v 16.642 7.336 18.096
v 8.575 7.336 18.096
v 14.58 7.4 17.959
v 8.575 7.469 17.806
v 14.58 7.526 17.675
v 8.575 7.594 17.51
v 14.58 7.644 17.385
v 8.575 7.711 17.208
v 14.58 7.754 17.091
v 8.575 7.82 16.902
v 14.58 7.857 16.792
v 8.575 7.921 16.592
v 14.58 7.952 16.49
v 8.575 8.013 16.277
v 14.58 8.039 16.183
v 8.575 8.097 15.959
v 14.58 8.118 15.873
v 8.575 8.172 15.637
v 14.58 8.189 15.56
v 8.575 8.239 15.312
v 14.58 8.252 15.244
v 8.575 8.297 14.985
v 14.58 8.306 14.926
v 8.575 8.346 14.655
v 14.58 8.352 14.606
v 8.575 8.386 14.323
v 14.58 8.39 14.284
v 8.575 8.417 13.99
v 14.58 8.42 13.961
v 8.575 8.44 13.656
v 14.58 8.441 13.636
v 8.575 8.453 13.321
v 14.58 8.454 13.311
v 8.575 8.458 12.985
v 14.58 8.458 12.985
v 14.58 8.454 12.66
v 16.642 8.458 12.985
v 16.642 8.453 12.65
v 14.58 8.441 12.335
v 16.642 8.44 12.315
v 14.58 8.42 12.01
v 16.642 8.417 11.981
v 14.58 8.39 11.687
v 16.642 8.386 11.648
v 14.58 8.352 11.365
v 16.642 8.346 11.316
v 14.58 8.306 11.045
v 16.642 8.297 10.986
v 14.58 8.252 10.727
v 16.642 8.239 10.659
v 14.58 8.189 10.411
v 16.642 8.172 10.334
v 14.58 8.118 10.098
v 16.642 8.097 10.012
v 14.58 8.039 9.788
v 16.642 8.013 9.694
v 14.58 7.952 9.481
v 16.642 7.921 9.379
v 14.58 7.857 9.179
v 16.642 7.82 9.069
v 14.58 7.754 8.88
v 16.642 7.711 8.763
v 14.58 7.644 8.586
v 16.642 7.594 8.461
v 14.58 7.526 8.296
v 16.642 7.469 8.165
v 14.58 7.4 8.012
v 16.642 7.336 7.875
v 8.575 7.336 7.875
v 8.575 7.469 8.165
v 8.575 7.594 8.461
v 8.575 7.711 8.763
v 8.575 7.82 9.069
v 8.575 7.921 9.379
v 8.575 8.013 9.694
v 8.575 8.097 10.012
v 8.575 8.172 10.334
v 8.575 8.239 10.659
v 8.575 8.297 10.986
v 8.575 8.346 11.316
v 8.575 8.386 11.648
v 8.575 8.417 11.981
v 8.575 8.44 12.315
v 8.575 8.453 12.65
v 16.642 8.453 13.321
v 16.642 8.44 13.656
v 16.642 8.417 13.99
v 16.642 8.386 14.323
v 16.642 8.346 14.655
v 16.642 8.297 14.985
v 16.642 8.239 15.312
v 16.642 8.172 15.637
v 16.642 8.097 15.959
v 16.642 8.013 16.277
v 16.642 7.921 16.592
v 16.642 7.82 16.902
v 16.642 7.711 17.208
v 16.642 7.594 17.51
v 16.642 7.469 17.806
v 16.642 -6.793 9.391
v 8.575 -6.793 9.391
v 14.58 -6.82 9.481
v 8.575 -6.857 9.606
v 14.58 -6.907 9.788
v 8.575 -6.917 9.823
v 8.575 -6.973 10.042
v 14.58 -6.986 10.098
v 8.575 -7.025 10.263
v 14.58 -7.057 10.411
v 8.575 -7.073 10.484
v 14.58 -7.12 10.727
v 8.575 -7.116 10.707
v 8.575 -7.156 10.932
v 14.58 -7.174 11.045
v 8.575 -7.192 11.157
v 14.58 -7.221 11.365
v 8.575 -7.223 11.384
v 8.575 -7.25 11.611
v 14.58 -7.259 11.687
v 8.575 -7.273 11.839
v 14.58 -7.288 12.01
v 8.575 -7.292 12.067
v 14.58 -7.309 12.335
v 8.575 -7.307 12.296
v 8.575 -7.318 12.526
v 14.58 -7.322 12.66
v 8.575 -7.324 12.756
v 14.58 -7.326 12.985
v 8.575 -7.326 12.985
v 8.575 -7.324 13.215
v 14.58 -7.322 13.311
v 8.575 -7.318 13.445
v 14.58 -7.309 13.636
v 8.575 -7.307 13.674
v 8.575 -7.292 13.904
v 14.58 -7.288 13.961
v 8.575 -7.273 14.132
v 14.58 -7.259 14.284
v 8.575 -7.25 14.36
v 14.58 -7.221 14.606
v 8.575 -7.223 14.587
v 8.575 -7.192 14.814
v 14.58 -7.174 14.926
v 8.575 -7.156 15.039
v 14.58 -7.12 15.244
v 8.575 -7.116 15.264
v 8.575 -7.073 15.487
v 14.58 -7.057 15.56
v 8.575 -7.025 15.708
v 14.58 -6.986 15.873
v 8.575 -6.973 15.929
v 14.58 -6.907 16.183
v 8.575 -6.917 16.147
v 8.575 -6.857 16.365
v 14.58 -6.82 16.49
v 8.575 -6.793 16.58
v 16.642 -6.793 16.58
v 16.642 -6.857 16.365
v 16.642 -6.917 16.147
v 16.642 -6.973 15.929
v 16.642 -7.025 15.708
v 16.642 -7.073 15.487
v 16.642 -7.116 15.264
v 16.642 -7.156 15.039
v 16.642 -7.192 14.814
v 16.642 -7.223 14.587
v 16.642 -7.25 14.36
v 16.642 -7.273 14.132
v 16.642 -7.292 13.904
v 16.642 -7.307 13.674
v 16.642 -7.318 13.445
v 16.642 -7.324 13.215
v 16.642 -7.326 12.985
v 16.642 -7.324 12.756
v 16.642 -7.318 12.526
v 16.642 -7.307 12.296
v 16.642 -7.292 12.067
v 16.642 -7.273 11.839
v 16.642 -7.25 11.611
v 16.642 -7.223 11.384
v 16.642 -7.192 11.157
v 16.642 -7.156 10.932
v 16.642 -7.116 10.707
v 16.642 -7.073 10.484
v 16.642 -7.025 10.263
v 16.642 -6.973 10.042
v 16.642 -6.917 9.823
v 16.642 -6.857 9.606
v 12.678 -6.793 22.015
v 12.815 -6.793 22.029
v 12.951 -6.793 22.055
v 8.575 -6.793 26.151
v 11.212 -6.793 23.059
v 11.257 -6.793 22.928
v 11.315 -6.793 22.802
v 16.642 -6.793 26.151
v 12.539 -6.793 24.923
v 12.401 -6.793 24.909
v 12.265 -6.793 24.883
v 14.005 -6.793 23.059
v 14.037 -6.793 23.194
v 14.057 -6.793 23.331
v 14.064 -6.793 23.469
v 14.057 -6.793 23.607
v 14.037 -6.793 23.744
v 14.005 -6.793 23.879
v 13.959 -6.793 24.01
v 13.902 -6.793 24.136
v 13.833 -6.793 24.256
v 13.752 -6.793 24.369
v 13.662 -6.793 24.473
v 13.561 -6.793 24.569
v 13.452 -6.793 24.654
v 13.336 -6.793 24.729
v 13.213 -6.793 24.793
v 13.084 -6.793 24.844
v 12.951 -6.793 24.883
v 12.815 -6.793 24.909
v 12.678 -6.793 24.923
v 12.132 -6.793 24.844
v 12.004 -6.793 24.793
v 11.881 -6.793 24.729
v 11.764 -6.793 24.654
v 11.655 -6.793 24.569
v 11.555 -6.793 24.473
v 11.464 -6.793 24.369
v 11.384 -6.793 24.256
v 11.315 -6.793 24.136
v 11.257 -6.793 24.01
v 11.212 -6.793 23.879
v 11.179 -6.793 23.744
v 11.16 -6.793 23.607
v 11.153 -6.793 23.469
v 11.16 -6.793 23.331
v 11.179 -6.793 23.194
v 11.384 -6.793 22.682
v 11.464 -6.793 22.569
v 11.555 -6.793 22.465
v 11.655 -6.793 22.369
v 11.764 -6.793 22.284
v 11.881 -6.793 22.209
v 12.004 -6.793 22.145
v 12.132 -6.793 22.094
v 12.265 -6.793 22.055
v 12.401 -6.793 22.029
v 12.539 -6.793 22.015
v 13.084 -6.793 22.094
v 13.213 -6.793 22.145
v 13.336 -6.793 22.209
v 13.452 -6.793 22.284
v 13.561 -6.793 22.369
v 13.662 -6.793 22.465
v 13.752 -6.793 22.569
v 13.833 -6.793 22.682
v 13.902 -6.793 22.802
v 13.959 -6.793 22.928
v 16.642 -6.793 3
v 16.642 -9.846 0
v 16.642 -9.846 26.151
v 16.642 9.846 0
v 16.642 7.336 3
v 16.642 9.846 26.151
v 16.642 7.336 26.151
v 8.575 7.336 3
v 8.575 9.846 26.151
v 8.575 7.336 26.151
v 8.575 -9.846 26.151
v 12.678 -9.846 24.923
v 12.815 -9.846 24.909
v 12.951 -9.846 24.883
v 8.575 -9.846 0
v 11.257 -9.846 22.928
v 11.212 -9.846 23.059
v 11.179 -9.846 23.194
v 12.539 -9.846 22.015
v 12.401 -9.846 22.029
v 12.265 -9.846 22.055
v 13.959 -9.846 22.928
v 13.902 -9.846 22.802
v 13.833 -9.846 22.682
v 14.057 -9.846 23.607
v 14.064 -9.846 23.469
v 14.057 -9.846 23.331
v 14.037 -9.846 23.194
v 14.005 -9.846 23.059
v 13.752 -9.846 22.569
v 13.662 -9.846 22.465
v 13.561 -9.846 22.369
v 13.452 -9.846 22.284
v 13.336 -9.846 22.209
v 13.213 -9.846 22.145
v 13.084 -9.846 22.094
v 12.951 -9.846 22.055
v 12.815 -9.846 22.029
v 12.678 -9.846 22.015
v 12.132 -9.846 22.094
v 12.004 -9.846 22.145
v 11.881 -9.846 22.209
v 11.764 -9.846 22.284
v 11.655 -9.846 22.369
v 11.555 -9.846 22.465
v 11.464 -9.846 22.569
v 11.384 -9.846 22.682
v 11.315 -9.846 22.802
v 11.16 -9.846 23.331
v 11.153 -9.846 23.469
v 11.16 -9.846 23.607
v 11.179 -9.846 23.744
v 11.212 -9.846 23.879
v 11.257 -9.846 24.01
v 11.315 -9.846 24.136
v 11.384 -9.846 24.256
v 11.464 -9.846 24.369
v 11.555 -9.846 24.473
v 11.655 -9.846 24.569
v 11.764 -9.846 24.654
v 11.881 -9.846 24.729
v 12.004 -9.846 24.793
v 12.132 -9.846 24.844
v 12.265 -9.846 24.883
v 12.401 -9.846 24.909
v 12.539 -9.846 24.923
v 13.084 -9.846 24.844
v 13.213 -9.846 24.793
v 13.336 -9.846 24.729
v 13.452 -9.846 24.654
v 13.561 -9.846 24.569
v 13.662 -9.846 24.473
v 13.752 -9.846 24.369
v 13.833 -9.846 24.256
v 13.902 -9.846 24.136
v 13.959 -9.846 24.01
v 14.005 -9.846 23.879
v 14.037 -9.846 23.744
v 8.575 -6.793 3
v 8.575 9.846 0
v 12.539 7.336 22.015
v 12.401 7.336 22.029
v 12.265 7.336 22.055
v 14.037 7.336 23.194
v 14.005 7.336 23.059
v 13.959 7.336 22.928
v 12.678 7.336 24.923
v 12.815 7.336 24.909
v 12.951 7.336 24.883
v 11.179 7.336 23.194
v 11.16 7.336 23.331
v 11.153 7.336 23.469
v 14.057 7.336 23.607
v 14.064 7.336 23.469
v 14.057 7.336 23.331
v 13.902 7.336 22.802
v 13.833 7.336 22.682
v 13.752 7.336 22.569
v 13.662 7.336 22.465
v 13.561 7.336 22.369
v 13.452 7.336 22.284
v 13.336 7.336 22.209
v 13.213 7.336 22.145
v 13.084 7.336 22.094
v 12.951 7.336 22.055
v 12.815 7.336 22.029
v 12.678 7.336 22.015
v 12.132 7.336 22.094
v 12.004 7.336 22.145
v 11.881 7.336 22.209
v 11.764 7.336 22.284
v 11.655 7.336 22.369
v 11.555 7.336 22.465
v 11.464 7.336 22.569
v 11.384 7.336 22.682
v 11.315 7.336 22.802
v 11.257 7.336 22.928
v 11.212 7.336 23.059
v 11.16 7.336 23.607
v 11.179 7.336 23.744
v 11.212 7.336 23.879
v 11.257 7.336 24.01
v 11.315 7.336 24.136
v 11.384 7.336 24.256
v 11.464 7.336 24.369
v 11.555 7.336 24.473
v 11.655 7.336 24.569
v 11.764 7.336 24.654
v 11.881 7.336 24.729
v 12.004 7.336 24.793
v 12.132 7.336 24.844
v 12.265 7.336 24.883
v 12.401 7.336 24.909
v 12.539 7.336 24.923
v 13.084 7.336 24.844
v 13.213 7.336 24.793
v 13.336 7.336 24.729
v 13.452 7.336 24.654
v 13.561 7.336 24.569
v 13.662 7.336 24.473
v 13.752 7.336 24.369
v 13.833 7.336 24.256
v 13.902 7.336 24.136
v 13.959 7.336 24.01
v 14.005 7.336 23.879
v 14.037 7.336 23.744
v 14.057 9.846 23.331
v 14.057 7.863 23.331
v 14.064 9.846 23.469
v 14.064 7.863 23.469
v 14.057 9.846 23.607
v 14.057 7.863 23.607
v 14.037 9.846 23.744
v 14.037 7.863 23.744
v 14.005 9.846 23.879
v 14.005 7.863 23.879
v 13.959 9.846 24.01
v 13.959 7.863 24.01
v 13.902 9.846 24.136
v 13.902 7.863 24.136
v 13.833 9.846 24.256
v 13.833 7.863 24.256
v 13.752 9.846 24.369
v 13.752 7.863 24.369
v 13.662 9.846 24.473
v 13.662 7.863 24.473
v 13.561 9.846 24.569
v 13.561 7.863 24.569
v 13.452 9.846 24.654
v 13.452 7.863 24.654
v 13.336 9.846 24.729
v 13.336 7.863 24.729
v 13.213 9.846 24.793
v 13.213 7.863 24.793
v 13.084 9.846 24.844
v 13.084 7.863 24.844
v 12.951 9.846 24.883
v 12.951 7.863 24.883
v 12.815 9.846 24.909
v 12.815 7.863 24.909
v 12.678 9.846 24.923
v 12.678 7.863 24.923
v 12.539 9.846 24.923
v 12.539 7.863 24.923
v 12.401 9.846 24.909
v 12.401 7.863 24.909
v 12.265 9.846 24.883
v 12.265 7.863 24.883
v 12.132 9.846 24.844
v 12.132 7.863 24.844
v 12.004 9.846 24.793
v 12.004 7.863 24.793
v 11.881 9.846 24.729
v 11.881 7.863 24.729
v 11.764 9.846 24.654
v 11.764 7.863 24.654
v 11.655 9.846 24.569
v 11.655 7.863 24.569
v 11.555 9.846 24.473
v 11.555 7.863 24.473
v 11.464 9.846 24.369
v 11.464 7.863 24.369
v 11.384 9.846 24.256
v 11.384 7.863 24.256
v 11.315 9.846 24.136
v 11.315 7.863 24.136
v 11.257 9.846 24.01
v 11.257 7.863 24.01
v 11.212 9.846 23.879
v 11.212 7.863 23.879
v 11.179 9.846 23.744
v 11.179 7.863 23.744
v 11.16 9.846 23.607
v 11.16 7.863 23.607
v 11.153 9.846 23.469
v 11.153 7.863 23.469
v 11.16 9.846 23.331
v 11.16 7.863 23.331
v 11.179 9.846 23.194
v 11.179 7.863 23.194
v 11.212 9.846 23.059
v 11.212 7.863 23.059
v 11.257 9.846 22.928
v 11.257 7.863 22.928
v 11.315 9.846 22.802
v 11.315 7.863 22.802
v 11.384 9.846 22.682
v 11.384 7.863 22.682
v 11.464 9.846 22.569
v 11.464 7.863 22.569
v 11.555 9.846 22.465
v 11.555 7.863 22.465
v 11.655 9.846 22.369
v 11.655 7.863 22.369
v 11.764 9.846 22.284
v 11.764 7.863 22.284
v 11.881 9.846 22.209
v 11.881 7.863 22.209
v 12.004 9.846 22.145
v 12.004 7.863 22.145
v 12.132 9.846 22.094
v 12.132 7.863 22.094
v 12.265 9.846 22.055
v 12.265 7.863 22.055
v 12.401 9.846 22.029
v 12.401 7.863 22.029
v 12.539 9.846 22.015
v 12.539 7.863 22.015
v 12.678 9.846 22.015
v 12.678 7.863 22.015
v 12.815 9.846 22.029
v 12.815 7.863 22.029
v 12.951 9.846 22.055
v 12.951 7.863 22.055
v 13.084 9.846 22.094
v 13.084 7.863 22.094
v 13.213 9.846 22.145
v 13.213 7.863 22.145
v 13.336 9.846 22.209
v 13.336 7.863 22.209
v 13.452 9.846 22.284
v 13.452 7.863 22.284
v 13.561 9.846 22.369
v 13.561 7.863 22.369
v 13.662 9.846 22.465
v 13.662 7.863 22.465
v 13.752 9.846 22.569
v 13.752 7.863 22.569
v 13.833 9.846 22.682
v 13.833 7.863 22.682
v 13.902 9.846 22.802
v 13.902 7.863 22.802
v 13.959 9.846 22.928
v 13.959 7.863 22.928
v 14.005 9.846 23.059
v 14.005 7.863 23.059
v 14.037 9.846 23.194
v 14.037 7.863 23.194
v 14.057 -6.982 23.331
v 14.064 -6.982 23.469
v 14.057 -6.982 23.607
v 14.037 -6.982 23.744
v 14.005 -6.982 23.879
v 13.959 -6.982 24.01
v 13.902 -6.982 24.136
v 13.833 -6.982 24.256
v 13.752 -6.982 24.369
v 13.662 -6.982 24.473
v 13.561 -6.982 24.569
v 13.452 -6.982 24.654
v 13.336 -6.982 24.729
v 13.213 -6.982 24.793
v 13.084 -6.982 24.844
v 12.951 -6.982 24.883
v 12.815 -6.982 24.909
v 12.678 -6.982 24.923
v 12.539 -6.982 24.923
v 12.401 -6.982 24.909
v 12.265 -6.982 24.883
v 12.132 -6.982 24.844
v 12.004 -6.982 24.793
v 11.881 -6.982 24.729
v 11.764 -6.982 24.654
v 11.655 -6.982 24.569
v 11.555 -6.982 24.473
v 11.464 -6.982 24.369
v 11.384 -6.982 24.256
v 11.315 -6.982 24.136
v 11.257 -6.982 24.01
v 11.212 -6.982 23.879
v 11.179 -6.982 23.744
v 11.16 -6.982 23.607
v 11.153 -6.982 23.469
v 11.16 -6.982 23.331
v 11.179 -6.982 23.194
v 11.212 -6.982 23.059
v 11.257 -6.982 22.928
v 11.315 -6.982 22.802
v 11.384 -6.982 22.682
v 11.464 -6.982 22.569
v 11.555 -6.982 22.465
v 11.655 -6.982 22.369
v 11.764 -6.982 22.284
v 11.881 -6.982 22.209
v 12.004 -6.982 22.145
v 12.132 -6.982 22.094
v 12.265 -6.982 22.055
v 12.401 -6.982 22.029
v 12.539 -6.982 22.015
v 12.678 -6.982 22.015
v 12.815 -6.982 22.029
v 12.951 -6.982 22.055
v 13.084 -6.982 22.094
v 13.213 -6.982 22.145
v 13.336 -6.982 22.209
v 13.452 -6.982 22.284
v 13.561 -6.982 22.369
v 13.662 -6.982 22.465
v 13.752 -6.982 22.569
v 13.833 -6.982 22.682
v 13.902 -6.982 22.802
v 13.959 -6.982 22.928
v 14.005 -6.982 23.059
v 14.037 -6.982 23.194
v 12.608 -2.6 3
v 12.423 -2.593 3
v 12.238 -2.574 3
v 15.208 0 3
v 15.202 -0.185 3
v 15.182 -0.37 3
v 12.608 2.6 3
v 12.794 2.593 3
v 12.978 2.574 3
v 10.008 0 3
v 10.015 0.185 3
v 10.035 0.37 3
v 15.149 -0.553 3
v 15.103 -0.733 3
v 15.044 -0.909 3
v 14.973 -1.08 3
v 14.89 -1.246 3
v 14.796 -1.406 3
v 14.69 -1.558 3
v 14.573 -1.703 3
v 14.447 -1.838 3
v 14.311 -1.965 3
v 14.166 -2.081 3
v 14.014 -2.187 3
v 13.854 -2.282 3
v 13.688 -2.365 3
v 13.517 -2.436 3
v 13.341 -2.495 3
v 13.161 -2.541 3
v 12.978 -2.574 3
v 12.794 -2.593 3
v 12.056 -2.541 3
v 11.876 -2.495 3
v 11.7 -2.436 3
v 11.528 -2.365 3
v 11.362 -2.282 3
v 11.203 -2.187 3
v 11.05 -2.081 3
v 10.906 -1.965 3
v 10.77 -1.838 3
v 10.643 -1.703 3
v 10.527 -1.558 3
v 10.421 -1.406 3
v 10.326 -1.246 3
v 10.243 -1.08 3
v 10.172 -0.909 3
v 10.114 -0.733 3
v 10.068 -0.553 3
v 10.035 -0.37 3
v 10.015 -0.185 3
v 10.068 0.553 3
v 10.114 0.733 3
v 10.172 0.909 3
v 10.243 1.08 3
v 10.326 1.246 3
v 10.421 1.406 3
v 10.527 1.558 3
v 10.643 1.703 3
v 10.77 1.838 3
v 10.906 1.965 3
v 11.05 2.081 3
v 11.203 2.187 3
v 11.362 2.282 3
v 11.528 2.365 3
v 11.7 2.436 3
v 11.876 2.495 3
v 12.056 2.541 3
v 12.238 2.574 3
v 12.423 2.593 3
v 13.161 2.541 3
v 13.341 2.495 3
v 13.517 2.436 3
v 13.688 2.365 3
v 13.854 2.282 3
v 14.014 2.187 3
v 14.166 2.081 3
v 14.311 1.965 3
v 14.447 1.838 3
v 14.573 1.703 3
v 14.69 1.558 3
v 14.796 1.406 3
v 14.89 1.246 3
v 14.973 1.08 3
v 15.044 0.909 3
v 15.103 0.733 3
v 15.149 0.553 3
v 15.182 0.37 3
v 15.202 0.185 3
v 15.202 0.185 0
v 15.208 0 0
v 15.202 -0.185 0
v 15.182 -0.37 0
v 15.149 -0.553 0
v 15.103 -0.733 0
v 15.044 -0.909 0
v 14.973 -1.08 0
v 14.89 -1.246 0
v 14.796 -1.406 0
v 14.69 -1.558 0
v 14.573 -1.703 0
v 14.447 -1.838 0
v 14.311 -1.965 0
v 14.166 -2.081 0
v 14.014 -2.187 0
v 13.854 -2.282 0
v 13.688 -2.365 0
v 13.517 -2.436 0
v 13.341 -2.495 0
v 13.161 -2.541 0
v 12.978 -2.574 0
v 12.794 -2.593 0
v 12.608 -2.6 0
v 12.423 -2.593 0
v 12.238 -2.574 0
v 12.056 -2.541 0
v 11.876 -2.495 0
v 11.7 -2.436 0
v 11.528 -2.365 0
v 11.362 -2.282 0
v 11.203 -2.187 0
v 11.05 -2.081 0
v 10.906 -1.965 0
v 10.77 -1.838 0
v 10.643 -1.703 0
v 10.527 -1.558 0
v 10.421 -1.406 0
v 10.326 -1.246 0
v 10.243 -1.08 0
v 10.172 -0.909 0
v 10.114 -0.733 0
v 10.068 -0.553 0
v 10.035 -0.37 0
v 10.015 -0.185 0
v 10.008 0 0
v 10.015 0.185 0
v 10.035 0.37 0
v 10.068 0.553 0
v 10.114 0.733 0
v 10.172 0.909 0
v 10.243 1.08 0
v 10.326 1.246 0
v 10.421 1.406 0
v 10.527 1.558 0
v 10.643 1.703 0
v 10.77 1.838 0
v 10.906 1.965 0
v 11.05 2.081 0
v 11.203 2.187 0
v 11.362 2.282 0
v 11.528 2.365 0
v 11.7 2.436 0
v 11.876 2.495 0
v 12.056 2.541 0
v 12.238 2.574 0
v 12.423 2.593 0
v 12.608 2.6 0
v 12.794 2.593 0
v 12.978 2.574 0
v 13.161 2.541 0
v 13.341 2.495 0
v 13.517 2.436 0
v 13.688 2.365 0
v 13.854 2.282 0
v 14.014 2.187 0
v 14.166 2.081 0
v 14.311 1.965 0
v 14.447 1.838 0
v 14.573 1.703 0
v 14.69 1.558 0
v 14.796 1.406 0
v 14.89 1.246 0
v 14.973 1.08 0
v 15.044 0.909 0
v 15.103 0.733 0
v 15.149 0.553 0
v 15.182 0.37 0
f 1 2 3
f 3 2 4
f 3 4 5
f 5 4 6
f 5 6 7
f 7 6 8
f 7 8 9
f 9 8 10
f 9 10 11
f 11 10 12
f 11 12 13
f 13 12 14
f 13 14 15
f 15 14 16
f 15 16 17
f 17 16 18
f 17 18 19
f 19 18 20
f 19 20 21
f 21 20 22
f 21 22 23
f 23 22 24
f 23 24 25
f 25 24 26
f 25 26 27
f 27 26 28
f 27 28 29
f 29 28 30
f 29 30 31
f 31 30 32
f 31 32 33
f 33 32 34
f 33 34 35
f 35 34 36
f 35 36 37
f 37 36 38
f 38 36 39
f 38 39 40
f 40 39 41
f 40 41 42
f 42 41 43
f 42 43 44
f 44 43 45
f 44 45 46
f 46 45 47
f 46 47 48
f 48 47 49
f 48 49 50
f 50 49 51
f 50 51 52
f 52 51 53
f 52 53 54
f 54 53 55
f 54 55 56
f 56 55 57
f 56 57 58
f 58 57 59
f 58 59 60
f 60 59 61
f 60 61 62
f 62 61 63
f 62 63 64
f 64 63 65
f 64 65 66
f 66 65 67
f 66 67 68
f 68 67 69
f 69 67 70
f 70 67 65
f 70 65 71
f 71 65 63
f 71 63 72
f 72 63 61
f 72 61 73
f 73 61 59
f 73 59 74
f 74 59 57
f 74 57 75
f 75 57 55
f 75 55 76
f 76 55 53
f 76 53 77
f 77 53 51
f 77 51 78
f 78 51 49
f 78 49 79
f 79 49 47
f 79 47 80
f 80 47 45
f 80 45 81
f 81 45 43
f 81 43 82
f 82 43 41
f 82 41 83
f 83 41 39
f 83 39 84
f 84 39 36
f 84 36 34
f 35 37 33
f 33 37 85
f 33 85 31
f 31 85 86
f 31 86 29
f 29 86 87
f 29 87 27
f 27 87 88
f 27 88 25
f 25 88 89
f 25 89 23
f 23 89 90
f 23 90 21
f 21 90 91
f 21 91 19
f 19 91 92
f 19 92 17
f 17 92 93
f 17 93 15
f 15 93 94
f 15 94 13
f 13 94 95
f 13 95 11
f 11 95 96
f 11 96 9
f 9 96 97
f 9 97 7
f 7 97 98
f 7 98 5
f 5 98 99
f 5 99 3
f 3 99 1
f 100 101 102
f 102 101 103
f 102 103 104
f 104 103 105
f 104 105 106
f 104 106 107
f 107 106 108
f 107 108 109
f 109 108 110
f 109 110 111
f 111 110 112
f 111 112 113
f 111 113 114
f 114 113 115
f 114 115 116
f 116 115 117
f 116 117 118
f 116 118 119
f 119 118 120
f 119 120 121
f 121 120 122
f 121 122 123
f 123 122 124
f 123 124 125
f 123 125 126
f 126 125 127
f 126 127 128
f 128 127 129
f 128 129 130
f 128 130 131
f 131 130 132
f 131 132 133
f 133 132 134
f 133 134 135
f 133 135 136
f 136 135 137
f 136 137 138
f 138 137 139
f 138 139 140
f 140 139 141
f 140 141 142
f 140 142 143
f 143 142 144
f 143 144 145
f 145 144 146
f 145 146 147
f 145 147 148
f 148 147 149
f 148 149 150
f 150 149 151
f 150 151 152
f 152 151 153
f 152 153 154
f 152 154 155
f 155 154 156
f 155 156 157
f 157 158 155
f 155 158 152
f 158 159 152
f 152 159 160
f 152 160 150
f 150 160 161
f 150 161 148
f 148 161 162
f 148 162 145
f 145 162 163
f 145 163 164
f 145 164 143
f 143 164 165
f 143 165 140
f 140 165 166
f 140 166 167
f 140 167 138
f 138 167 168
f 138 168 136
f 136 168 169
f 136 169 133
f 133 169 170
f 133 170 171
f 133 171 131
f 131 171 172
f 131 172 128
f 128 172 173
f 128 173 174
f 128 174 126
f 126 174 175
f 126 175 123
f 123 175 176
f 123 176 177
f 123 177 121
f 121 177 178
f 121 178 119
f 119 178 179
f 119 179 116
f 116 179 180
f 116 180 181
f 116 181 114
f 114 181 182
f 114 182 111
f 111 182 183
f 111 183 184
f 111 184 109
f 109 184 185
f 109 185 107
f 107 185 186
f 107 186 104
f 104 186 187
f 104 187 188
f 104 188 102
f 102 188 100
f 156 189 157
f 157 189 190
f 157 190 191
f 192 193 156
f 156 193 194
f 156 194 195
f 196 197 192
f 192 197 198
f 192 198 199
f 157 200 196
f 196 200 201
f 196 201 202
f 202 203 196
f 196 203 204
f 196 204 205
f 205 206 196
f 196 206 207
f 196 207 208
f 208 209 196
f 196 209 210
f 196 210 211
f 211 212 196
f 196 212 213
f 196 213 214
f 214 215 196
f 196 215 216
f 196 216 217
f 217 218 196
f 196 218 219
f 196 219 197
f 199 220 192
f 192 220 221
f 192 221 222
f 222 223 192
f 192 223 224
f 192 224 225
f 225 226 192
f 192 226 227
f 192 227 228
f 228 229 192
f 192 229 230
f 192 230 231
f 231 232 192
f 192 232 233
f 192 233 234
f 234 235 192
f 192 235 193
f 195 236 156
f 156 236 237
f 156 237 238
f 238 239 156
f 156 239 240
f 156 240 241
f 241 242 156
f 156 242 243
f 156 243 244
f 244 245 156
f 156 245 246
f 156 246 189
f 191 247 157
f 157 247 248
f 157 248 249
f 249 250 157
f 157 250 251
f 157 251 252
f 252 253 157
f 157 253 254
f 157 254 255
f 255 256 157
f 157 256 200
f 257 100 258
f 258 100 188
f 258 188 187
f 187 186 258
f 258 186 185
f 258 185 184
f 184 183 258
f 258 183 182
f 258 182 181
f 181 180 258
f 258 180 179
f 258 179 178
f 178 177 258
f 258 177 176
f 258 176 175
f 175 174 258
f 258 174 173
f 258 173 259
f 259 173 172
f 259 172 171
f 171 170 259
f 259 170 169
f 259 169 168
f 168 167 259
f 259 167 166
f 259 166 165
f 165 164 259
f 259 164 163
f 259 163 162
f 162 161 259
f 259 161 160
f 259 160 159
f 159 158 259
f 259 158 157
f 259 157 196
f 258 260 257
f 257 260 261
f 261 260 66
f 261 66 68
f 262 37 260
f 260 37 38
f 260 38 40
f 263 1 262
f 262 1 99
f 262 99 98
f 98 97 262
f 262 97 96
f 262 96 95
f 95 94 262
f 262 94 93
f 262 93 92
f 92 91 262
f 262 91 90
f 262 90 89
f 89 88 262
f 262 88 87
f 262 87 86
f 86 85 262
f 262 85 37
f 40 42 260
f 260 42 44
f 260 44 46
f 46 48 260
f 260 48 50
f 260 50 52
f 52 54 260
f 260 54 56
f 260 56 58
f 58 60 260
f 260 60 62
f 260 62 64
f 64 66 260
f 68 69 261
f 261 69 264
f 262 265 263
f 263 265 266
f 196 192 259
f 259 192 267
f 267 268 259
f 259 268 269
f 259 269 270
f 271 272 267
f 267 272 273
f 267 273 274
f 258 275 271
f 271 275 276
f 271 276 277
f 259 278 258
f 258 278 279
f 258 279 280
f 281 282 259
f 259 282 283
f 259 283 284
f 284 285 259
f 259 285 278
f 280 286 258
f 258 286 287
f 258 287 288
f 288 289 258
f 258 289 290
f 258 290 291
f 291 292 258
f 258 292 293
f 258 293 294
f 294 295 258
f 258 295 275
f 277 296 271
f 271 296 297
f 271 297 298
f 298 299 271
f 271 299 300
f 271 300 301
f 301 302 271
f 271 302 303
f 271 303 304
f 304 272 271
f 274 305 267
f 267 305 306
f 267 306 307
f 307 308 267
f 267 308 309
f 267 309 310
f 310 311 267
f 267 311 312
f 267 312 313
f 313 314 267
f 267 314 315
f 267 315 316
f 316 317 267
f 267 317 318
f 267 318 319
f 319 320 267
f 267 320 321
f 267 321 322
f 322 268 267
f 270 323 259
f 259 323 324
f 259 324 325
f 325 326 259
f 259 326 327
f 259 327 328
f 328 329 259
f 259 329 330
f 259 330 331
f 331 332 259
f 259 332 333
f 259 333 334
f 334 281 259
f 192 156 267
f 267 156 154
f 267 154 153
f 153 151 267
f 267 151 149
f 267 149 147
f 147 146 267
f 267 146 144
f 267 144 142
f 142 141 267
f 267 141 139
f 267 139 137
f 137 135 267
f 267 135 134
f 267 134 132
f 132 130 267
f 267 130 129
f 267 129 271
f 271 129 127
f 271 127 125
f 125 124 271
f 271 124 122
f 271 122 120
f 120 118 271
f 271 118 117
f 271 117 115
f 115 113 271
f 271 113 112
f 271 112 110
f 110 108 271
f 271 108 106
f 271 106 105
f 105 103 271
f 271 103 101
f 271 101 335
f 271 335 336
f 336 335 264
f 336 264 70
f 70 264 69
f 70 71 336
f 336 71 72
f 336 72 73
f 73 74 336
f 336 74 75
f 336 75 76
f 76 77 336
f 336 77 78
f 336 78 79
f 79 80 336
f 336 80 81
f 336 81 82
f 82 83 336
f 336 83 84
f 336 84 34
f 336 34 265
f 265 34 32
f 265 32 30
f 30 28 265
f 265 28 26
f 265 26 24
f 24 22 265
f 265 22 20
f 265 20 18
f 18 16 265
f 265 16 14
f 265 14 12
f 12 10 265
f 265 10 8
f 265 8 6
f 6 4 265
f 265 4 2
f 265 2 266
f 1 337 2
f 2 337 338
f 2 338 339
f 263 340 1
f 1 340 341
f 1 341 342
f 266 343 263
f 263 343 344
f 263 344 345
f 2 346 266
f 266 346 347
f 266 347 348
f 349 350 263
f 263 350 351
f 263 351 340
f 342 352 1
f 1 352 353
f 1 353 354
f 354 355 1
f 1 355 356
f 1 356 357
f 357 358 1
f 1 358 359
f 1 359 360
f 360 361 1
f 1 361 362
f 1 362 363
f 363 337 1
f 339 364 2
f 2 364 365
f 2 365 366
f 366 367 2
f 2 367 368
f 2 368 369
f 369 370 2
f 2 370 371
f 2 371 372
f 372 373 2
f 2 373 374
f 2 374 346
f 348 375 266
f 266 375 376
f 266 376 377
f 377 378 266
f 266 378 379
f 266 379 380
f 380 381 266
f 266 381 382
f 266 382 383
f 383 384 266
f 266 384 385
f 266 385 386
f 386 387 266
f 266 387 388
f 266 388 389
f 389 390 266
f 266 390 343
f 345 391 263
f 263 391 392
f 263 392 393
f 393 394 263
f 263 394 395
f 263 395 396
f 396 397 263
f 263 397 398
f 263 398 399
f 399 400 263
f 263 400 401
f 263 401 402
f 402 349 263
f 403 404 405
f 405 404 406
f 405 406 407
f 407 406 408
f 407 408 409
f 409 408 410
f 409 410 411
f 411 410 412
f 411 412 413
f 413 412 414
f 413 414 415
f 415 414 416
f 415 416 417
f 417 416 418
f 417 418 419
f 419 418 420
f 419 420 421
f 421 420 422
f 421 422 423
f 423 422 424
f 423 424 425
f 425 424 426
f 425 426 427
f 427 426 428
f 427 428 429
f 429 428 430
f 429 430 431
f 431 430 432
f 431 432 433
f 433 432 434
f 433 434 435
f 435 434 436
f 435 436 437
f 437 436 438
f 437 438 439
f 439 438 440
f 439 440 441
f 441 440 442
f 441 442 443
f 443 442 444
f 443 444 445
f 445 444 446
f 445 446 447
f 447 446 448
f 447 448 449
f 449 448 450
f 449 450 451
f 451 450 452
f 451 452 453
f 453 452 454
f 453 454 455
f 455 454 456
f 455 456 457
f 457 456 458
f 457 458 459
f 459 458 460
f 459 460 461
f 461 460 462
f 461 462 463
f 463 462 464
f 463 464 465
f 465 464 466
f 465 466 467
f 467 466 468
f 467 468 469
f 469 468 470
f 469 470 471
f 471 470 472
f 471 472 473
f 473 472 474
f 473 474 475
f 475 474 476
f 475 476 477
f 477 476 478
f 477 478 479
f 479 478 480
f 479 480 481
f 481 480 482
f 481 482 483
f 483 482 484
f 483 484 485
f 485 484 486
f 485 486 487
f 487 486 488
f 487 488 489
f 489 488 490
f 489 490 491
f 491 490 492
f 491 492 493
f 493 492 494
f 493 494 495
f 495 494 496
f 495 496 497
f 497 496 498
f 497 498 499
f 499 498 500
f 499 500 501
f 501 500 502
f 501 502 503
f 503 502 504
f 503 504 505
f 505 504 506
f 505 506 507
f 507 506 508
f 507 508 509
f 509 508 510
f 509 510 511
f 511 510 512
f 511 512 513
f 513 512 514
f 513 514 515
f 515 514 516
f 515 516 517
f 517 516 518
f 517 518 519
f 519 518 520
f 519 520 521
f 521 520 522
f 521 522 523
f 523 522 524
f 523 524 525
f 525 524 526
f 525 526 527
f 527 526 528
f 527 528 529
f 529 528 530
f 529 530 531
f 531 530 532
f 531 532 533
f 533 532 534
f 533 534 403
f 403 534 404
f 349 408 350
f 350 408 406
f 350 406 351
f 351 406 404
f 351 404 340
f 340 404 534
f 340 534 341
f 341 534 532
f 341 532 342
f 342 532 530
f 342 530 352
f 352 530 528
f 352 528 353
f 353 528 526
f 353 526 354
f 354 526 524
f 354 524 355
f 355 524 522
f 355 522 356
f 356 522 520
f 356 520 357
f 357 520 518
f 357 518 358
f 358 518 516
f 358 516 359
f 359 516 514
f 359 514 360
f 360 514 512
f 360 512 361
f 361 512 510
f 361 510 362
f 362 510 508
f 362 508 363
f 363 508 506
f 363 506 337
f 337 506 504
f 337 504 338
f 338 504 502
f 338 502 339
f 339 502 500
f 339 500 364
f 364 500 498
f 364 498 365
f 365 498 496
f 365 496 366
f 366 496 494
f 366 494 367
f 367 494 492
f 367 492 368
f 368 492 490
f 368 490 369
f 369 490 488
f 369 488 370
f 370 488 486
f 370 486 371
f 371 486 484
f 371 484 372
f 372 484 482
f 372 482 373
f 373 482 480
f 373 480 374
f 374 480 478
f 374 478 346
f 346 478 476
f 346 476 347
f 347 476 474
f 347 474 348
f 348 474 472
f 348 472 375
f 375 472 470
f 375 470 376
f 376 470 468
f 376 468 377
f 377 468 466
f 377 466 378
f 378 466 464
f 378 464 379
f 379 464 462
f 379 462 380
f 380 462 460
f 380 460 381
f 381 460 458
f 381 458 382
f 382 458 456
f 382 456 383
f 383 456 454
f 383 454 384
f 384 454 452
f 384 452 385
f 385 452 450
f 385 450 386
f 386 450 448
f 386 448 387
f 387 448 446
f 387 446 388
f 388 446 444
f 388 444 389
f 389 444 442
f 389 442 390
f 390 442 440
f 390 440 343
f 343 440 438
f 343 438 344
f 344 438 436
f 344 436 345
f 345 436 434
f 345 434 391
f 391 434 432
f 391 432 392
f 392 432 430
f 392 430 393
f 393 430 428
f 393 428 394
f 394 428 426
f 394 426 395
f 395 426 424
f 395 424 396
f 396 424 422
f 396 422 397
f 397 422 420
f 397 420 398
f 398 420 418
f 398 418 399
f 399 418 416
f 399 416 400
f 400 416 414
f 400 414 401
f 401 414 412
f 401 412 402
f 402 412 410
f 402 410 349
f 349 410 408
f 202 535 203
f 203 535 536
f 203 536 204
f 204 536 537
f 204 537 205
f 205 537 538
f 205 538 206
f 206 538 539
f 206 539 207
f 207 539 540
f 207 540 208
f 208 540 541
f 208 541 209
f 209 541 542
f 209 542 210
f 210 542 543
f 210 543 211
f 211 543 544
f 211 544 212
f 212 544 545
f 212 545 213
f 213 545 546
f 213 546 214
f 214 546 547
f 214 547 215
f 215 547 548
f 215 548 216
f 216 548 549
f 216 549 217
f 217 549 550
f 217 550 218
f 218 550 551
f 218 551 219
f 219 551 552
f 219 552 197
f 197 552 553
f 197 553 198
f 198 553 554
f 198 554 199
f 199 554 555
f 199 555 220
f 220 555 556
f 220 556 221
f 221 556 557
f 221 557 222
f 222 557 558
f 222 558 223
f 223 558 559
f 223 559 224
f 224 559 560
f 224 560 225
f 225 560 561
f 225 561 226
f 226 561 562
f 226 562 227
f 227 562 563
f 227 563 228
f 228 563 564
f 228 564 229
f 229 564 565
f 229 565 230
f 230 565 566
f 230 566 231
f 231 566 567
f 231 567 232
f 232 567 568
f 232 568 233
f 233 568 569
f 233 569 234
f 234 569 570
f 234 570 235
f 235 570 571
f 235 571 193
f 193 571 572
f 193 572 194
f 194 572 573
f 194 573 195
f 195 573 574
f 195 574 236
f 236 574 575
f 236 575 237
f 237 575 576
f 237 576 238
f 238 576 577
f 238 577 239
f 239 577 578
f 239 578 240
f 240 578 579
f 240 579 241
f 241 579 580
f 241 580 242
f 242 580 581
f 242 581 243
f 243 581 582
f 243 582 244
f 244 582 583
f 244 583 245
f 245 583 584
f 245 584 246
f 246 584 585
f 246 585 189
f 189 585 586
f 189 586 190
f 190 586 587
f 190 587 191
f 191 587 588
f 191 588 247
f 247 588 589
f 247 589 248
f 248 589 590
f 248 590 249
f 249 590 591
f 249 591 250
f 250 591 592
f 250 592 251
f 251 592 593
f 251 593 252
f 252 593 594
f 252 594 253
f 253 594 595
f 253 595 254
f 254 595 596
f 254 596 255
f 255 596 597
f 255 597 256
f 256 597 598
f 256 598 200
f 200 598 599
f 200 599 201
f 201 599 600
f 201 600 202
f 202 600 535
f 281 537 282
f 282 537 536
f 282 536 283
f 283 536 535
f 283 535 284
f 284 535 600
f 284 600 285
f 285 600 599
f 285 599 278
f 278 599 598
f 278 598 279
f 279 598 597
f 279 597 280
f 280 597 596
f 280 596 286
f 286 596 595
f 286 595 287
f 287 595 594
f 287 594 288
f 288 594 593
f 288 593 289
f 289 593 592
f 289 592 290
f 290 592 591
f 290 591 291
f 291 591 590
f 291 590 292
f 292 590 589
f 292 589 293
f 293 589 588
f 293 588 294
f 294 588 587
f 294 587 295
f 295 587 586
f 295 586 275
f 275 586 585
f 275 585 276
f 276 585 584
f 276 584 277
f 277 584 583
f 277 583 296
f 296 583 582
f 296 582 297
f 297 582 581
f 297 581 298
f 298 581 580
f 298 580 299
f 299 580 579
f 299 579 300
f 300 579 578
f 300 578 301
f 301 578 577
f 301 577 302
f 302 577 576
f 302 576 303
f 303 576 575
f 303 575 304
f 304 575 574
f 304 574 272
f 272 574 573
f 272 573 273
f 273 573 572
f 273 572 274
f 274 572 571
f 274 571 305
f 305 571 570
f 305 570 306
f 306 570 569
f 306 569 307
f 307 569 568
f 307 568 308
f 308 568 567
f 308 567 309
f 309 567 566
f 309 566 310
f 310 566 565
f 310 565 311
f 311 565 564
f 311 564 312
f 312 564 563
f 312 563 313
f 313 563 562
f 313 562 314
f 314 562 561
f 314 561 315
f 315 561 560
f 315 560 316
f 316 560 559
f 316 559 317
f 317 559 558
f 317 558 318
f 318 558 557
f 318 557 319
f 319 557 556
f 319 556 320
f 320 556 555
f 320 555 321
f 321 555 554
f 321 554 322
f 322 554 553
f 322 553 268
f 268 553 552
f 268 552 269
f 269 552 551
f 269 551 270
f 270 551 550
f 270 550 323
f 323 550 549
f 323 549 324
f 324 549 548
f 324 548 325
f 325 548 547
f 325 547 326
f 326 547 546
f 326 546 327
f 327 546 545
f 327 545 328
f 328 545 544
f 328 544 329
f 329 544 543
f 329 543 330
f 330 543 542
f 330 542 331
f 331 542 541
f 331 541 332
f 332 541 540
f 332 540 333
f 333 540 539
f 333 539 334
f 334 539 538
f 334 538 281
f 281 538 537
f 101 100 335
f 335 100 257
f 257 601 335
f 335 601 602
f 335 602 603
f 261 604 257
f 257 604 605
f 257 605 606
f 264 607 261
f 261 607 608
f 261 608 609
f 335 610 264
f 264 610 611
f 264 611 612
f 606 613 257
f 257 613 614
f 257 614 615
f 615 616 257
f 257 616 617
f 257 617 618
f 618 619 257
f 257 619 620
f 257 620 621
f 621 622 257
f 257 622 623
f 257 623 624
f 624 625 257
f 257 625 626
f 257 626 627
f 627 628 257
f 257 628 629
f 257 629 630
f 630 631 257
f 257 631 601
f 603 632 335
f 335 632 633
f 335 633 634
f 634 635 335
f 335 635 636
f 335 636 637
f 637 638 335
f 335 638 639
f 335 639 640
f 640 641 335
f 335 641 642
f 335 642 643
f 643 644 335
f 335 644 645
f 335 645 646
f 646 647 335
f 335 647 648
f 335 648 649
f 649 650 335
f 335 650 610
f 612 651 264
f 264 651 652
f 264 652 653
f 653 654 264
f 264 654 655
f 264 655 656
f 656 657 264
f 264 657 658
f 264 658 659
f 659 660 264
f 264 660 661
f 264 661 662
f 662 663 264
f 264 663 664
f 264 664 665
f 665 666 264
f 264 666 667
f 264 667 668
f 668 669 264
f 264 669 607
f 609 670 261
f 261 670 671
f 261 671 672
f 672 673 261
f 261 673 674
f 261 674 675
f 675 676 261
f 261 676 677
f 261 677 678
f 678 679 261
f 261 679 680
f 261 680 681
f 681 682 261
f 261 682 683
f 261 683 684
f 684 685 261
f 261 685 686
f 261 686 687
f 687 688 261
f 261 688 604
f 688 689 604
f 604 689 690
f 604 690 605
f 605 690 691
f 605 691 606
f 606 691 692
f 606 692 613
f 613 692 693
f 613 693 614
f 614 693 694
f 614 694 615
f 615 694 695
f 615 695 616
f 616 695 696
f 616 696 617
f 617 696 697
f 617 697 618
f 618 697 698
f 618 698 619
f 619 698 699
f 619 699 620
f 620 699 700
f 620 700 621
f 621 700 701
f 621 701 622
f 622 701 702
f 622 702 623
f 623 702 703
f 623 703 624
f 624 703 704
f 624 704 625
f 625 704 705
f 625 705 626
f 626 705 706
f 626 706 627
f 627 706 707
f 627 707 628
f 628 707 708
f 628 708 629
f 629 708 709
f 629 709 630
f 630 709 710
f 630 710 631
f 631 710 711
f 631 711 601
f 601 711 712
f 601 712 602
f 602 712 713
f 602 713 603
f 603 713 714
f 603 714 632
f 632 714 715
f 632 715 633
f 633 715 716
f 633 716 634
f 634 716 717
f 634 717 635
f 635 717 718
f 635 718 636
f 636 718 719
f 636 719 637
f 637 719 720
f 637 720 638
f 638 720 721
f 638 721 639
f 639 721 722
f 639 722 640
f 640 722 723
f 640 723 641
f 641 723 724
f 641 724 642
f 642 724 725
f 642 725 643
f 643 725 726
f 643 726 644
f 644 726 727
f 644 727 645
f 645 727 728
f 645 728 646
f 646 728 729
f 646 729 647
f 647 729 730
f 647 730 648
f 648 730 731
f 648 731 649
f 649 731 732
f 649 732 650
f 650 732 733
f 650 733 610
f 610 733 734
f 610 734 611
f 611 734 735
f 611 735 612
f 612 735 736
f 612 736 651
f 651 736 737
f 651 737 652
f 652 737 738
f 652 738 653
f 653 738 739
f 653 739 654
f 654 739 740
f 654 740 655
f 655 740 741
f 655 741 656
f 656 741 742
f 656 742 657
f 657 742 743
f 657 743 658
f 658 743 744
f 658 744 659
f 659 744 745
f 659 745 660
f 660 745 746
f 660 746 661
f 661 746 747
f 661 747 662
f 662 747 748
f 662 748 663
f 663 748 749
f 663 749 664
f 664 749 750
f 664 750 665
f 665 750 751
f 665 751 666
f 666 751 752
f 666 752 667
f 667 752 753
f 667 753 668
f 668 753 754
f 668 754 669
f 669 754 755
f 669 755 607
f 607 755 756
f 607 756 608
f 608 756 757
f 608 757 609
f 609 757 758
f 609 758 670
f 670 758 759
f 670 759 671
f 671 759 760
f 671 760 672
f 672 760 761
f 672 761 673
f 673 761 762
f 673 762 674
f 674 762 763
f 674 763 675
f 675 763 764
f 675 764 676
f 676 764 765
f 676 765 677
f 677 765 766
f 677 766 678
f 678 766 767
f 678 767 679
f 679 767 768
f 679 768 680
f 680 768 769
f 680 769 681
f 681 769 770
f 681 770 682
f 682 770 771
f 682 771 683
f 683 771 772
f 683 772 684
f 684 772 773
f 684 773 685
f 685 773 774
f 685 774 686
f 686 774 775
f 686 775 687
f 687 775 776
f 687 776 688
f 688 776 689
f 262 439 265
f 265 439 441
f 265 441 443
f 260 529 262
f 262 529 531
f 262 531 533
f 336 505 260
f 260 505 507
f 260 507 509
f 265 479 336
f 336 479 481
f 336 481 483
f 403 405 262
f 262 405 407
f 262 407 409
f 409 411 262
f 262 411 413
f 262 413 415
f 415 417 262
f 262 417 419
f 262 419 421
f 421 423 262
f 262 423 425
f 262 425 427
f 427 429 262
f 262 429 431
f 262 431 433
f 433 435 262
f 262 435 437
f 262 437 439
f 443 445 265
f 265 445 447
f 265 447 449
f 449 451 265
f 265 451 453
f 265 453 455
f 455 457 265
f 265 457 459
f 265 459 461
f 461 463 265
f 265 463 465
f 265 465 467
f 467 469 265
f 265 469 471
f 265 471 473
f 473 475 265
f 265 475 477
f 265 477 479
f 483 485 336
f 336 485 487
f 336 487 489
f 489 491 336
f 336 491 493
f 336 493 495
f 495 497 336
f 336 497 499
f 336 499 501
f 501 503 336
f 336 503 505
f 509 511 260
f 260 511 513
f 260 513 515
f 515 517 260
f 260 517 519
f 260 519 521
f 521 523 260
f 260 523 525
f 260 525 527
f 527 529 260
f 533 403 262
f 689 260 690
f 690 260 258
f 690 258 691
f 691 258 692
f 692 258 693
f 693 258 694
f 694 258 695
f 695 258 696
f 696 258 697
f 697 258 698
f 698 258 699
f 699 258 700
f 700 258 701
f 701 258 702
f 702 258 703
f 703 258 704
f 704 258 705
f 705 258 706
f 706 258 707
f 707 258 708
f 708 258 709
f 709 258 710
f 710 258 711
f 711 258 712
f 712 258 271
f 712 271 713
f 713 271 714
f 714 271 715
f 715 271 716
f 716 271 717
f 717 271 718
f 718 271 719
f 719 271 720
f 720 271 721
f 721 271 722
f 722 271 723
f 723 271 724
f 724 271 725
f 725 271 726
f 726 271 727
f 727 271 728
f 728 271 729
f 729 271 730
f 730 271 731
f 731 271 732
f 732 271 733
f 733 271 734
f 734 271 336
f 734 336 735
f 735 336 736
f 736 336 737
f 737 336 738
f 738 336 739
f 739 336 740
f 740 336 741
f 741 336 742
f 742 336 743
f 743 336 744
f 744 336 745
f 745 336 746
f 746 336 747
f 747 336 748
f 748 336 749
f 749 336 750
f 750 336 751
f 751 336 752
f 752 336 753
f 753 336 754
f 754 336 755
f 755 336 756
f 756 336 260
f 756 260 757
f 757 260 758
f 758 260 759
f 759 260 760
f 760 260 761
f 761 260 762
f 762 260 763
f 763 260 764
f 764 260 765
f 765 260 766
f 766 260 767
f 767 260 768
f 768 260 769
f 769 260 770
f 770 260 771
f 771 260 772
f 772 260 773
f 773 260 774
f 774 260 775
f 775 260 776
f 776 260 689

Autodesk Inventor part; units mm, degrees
ref_plane "YZ Plane" through (0, 0, 0) normal (1, 0, 0) x (0, 1, 0)
ref_plane "XZ Plane" through (0, 0, 0) normal (0, 1, 0) x (-1, 0, 0)
ref_plane "XY Plane" through (0, 0, 0) normal (0, 0, 1) x (1, 0, 0)
sketch "Skizze1" plane through (0, 0, 0) normal (0, 0, 1) x (1, 0, 0)
  line L0 (16.6415, 9.8457) -> (8.5751, 9.8457)
  line L1 (8.5751, 9.8457) -> (8.5751, -9.8457)
  line L2 (8.5751, -9.8457) -> (16.6415, -9.8457)
  line L3 (16.6415, -9.8457) -> (16.6415, 9.8457)
  line L4 (16.6415, 9.8457) -> (8.5751, -9.8457) construction
  line L5 (8.5751, 9.8457) -> (16.6415, -9.8457) construction
  circle A0 centre (12.6083, 0) radius 2.6
  point P0 (0, 0)
  dimension "d0" = 5.2
extrude "Extrusion1" add sketch "Skizze1" along normal blind 3
sketch "Skizze2" plane through (0, 0, 3) normal (0, 0, 1) x (1, 0, 0)
  circle A0 centre (12.6083, 0) radius 2.6 construction
  line L0 (16.6415, 9.8457) -> (8.5751, 9.8457) construction
  line L1 (8.5751, 9.8457) -> (8.5751, -9.8457) construction
  line L2 (8.5751, -9.8457) -> (16.6415, -9.8457) construction
  line L3 (16.6415, -9.8457) -> (16.6415, 9.8457) construction
  line L4 (8.5751, 9.8457) -> (8.5751, -9.8457) projected
  line L5 (16.6415, -9.8457) -> (8.5751, -9.8457)
  line L6 (8.5751, -9.8457) -> (8.5751, -6.7929)
  line L7 (8.5751, -6.7929) -> (16.6415, -6.7929)
  line L8 (16.6415, -6.7929) -> (16.6415, -9.8457)
  line L9 (16.6415, -9.8457) -> (16.6415, 9.8457) projected
  line L10 (8.5751, 9.8457) -> (16.6415, 9.8457)
  line L11 (16.6415, 9.8457) -> (16.6415, 7.3365)
  line L12 (16.6415, 7.3365) -> (8.5751, 7.3365)
  line L13 (8.5751, 7.3365) -> (8.5751, 9.8457)
  point P0 (0, 0)
extrude "Extrusion2" add sketch "Skizze2" along normal blind 25 contours L10 L9 L12 L4 | L7 L8 L5 L4
sketch "Skizze3" plane through (8.5751, 7.3365, 3) normal (0, -1, 0) x (1, 0, 0)
  line L0 (8.0665, 0) -> (0, 0) projected
  line L1 (8.0665, 0) -> (8.0665, 25) projected
  line L2 (0, 25) -> (8.0665, 25) projected
  line L3 (0, 0) -> (0, 25) projected
  circle A0 centre (4.0332, 20.469) radius 1.4552
  point P0 (-8.5751, -3)
extrude "Extrusion3" cut sketch "Skizze3" along normal through all both and the other way through all contours A0
sketch "Skizze4" plane through (8.5751, -9.8457, 0) normal (0, -1, 0) x (1, 0, 0)
  line L0 (8.0665, 3) -> (8.0665, 28) projected
  line L1 (0, 3) -> (0, 28) projected
  line L2 (8.0665, 28) -> (0, 28)
  line L3 (0, 28) -> (0, 26.1511)
  line L4 (0, 26.1511) -> (8.0665, 26.1511)
  line L5 (8.0665, 26.1511) -> (8.0665, 28)
  point P0 (-8.5751, 0)
extrude "Extrusion4" cut sketch "Skizze4" against normal through all
sketch "Skizze5" plane through (16.6415, -9.8457, 0) normal (1, 0, 0) x (0, 0, -1)
  ellipse E0 centre (-12.9855, 10.4116) end of major axis (-22.9331, 10.4116) minor radius 7.8919
  point P0 (0, 9.8457)
extrude "Extrusion5" cut sketch "Skizze5" along normal through all both and the other way through all
properties part number "amt_dragster"
